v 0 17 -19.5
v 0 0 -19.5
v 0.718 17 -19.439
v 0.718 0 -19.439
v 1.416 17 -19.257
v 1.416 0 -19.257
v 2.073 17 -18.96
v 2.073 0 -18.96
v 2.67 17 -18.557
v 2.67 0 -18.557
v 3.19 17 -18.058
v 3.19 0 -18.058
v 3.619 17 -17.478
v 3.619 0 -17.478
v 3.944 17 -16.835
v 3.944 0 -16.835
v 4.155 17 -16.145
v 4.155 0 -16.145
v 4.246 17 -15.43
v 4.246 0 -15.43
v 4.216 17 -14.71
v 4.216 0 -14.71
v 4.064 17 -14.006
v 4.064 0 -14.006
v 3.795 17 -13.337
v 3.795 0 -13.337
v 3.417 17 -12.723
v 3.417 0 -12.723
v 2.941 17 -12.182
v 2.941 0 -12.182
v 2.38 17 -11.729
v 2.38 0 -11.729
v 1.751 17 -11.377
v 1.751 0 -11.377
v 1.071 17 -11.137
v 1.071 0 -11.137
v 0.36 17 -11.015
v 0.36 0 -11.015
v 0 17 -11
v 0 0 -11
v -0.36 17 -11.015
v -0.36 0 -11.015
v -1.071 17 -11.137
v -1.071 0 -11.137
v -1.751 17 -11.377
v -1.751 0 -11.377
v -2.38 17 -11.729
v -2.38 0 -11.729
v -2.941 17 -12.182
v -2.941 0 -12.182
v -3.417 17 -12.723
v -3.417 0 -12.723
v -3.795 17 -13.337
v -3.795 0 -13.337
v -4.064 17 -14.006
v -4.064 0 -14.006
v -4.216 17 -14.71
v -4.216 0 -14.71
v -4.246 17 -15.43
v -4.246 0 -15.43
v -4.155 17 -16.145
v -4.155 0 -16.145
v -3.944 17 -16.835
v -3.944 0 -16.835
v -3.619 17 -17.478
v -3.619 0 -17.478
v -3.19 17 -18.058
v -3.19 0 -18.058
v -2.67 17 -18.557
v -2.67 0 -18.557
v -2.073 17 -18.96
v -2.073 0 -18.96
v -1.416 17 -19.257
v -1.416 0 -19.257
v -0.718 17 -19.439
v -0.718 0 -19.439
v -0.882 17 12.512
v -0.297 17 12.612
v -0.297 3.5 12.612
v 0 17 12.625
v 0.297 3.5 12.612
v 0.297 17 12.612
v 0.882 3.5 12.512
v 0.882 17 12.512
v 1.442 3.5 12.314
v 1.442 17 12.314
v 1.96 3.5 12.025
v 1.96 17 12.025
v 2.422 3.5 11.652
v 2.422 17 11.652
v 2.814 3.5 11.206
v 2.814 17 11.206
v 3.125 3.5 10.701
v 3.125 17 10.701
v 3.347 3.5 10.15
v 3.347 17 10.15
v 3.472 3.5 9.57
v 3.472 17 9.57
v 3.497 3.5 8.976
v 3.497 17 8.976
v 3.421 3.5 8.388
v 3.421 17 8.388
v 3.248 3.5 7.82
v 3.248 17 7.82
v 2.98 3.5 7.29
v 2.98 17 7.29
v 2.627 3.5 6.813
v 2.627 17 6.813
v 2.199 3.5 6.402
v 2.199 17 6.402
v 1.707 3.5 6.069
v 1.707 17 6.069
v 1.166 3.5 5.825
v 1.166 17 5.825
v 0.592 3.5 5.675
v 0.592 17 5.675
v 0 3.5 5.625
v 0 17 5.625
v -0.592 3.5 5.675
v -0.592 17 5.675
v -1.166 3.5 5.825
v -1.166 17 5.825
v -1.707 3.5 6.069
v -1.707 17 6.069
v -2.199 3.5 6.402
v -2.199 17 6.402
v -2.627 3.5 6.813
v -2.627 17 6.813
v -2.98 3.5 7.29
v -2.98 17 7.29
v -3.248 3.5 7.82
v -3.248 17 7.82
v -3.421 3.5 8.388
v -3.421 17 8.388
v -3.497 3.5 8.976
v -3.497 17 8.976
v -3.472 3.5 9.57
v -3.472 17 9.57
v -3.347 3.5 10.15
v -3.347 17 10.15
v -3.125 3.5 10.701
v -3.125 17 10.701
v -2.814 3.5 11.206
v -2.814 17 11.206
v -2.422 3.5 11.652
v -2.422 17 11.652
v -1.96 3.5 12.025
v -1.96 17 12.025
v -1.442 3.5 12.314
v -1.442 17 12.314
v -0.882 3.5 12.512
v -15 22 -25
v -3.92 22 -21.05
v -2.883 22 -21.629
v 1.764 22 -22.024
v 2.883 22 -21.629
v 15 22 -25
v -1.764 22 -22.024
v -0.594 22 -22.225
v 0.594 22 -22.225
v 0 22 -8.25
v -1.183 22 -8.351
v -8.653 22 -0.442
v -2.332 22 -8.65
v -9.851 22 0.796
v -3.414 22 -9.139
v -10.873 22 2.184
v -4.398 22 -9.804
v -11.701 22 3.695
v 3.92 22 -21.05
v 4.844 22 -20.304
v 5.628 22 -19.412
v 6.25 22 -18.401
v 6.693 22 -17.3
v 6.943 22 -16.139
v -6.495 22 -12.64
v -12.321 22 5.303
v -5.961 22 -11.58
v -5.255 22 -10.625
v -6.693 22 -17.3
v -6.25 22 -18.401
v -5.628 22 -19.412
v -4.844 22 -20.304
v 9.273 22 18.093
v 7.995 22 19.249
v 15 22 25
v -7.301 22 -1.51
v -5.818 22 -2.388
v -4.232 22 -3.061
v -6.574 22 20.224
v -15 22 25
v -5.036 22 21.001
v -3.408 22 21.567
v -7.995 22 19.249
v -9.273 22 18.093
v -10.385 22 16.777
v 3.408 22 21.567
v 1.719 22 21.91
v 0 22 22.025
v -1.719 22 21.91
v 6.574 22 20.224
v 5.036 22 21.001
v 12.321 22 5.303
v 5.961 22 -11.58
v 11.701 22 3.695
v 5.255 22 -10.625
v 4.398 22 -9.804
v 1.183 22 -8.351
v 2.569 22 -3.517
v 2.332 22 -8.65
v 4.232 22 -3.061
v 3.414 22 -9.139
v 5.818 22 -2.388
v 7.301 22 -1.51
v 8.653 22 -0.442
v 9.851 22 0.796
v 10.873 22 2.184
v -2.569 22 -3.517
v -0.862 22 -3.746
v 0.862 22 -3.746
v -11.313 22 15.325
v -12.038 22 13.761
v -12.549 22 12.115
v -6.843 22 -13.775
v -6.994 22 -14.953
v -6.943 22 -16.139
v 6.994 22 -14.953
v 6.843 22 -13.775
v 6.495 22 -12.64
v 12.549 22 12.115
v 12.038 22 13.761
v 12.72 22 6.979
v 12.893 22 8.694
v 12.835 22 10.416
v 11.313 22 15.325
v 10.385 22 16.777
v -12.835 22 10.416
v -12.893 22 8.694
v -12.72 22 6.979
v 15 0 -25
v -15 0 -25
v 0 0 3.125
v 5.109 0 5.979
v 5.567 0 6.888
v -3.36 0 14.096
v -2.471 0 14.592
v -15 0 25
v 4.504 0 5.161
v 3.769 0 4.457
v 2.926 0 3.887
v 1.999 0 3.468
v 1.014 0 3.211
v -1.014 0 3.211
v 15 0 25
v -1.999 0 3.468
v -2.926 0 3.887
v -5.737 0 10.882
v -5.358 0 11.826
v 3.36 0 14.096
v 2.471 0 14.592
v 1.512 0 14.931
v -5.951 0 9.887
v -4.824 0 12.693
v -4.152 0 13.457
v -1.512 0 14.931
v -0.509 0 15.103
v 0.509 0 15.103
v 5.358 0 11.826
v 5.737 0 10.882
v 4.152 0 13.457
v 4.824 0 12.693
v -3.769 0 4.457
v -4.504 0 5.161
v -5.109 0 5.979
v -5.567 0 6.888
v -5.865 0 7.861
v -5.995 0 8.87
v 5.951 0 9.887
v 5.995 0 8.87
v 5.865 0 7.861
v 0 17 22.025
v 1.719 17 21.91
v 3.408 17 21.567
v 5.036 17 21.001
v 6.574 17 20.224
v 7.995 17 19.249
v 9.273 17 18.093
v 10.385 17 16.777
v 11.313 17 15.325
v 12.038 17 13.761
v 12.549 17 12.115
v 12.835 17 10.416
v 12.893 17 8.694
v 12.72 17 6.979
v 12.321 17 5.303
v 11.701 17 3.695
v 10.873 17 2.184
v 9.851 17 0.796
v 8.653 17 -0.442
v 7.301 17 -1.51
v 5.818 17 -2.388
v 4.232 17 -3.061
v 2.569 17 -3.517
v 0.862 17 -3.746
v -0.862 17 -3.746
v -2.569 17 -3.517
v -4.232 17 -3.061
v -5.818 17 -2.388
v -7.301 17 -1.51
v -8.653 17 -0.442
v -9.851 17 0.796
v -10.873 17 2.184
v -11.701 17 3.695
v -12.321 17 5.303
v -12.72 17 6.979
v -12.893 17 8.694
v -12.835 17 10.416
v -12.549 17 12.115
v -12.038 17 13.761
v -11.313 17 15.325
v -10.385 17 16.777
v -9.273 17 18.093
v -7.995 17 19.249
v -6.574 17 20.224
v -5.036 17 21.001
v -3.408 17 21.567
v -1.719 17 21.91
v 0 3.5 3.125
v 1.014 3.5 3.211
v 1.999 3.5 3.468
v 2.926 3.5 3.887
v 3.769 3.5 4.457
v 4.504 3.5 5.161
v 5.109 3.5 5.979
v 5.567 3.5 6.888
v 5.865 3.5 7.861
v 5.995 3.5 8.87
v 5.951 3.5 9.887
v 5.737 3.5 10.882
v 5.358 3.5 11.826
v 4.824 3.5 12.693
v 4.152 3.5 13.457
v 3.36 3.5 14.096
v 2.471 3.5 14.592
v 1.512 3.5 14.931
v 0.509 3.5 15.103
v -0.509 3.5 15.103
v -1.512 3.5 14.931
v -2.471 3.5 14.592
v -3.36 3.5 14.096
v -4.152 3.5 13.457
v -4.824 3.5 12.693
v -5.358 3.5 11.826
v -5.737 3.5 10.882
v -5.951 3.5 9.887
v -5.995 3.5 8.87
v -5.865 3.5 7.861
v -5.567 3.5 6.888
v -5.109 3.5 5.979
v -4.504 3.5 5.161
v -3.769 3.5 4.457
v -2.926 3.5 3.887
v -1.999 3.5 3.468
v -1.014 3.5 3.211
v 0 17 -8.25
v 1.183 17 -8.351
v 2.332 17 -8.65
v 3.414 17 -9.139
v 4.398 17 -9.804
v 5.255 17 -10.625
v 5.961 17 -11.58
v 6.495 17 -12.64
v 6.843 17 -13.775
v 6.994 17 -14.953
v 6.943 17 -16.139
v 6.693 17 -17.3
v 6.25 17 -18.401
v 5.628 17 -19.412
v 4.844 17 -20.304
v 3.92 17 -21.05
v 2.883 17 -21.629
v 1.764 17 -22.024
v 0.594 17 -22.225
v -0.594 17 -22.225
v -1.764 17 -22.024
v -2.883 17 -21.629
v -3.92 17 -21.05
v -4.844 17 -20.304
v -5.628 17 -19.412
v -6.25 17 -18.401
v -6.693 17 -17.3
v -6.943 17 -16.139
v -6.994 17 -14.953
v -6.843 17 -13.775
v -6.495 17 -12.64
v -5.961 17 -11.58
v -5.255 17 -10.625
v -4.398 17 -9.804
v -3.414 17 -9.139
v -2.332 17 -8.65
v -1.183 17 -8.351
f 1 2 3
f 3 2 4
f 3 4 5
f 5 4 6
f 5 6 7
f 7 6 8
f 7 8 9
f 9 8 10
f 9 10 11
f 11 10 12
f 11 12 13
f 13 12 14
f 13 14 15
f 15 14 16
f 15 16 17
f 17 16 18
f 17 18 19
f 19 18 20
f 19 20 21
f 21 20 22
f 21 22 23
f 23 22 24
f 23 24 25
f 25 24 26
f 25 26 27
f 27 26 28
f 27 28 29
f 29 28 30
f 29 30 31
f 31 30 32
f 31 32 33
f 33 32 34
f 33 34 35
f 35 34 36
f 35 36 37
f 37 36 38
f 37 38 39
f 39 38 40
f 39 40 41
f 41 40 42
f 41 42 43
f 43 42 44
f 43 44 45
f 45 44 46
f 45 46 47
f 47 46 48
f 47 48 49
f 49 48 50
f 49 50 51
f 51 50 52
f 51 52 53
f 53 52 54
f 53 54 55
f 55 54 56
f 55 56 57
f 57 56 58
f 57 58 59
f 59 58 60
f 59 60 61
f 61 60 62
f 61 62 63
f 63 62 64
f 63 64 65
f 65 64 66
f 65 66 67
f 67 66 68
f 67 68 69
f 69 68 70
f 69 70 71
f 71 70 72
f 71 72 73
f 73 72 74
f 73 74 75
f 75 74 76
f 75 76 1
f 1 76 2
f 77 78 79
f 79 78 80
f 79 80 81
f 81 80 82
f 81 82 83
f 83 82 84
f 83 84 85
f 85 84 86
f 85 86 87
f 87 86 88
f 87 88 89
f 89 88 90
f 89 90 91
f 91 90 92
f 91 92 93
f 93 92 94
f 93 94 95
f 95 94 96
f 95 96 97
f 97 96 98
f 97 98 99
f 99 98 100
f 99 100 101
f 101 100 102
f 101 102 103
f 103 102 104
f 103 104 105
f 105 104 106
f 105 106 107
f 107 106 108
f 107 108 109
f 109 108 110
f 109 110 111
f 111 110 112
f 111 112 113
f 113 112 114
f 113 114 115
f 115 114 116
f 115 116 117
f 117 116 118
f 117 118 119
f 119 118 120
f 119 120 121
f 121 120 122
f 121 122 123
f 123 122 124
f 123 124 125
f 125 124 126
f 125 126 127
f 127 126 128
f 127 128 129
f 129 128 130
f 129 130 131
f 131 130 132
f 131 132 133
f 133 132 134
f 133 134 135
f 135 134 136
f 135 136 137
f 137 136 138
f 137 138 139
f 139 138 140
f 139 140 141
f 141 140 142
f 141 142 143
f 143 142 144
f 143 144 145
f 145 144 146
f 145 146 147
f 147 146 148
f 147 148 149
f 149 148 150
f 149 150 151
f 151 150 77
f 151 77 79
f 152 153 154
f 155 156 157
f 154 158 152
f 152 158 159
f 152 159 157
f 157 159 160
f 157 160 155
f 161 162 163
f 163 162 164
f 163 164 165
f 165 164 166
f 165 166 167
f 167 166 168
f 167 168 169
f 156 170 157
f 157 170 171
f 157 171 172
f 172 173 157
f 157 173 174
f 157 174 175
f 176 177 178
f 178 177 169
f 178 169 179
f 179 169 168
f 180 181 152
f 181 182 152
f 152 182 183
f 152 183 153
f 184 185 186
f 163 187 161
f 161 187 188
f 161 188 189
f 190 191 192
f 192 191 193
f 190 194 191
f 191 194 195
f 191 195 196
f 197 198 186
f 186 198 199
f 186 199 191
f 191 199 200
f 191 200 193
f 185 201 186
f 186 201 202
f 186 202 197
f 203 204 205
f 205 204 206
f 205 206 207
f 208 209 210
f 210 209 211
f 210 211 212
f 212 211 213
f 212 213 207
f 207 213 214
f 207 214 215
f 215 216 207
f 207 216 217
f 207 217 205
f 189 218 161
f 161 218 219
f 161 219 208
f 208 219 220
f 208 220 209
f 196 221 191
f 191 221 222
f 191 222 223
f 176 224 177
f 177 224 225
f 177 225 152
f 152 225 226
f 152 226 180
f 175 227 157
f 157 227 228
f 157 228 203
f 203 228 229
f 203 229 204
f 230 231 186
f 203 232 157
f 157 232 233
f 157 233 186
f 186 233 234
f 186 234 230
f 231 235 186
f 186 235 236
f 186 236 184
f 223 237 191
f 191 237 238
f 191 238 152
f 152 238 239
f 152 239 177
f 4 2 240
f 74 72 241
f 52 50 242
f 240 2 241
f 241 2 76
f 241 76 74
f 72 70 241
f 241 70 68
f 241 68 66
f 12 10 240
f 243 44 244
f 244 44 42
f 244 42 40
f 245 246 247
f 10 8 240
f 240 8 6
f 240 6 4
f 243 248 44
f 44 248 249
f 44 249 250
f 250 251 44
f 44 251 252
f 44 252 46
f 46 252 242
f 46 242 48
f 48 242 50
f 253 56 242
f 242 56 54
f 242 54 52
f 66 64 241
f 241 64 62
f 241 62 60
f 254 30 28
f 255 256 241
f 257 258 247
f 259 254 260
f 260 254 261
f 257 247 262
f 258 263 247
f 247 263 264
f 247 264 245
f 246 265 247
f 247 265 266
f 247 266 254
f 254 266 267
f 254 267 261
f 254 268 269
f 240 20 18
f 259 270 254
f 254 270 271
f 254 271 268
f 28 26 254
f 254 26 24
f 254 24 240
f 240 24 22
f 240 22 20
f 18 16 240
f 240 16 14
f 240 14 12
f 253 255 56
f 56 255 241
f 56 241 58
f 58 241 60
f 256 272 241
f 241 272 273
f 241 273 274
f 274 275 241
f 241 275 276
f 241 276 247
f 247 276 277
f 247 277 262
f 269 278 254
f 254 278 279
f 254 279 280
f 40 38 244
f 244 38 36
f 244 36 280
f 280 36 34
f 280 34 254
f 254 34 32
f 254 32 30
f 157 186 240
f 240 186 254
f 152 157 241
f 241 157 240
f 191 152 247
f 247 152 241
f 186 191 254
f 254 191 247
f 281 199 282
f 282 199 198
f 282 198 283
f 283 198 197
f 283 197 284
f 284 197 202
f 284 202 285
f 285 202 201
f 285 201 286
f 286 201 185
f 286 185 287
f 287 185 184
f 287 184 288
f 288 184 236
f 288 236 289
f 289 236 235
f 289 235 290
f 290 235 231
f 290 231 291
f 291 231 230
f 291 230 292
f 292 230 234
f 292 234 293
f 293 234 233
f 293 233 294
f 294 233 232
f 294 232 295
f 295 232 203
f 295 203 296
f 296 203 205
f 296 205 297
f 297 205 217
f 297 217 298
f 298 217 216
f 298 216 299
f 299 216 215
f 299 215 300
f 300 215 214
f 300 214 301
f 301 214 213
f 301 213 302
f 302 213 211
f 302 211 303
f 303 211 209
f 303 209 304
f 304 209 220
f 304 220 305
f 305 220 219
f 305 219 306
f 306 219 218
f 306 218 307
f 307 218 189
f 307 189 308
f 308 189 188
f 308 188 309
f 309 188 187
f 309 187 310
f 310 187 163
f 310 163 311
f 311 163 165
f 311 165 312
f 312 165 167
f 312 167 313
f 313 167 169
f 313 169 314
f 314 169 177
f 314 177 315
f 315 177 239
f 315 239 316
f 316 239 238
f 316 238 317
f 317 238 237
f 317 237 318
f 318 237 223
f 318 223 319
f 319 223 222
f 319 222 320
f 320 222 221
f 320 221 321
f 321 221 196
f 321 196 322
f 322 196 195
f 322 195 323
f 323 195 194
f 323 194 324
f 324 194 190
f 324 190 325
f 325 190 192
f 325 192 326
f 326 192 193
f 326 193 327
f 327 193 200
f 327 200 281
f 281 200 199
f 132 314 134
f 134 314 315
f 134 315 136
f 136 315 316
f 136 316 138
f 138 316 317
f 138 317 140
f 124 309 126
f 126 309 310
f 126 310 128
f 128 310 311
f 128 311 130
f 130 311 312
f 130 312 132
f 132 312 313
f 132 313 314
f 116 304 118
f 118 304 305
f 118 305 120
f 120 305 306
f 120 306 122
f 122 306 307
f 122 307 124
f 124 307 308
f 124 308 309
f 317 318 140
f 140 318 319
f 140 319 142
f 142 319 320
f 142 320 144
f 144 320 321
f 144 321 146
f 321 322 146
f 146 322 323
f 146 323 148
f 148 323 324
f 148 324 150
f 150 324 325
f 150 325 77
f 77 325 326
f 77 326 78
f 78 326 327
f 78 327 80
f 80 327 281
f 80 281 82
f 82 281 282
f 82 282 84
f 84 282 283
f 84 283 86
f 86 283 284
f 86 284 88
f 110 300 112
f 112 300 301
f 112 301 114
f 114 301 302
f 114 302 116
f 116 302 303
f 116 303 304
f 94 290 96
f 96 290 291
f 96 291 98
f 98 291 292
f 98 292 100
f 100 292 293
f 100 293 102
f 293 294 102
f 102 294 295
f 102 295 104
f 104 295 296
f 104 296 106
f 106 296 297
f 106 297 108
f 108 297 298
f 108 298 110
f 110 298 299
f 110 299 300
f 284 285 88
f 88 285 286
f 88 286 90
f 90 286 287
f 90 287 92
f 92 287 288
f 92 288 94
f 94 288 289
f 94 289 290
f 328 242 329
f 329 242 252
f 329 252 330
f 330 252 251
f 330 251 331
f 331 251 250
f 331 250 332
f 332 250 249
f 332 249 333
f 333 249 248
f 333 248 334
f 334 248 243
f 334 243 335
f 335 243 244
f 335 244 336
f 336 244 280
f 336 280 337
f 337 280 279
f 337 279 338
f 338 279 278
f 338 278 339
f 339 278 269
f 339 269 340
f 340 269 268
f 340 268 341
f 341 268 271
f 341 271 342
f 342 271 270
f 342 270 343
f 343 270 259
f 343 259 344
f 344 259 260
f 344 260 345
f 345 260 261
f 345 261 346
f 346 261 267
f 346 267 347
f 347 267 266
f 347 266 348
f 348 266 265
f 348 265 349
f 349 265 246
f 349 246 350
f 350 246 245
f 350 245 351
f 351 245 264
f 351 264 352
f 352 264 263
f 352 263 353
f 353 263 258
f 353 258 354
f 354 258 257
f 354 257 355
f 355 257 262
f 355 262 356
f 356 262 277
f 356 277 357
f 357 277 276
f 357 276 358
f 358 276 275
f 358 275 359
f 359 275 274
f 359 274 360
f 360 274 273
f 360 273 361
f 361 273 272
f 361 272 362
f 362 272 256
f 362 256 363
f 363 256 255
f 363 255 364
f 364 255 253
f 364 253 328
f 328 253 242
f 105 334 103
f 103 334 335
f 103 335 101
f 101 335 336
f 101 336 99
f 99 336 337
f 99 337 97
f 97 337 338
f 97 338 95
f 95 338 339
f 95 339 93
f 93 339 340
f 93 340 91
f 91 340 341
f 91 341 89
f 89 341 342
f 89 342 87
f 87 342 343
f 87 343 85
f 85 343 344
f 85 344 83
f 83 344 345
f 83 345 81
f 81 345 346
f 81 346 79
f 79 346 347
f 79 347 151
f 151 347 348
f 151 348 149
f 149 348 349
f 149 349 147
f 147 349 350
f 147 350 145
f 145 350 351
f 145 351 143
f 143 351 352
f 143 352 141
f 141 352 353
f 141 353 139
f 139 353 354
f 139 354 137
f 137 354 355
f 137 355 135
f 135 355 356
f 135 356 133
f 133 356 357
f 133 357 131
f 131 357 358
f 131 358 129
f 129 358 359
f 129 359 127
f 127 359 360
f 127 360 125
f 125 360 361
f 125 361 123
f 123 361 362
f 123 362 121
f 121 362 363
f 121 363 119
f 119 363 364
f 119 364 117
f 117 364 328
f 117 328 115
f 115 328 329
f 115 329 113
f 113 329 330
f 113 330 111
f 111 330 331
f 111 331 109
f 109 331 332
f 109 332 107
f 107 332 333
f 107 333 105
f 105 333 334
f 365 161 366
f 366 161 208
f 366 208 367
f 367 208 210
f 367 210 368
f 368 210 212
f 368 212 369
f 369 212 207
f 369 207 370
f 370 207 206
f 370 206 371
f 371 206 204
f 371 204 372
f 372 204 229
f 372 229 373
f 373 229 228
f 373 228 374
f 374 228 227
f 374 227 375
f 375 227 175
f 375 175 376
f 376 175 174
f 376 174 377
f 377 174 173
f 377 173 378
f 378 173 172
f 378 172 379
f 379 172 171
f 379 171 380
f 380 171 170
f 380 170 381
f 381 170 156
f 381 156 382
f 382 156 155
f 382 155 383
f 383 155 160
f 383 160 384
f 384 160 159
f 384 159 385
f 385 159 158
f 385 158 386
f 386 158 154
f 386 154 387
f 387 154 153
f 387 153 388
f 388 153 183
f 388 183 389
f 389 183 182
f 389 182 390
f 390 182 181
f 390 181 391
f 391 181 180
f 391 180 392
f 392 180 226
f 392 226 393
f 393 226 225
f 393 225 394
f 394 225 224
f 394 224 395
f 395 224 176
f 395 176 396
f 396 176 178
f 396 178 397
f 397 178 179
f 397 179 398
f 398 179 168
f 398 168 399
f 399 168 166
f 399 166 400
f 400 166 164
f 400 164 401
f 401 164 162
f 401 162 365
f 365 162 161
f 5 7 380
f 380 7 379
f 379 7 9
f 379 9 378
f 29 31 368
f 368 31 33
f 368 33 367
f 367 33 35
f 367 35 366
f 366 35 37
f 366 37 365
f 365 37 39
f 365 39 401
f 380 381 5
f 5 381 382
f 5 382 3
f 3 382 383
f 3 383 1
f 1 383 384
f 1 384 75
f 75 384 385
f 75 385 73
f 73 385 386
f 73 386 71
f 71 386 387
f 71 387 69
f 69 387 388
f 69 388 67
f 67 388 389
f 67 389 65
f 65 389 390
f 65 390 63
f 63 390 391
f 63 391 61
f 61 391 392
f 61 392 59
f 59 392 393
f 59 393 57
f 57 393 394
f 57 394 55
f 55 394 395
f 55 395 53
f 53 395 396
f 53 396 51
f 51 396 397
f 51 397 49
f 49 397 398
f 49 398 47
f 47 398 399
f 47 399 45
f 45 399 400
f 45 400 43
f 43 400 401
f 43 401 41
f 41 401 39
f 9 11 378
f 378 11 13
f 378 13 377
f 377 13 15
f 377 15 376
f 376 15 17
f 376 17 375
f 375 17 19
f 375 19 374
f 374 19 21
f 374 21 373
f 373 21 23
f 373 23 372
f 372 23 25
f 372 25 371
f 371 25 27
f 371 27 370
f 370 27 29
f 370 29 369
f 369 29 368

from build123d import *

# Parameters (mm, degrees)
SKETCH_1_W          = 30
SKETCH_1_H          = 50
SKETCH_1_R          = 3.5
SKETCH_1_R_2        = 4.25
EXTRUDE_1_DEPTH     = 22
SKETCH_2_R          = 12.9
CUT_EXTRUDE_1_DEPTH = 5
SKETCH_3_R          = 6
CUT_EXTRUDE_2_DEPTH = 3.5
SKETCH_4_R          = 7
CUT_EXTRUDE_3_DEPTH = 5


with BuildPart() as part:
    # 草图1 → 凸台-拉伸1 (new body)
    with BuildSketch(Plane(origin=(0, 0, 0), x_dir=(1, 0, 0), z_dir=(0, 1, 0))):
        Rectangle(SKETCH_1_W, SKETCH_1_H)
        with Locations((0, -9.125)):
            Circle(SKETCH_1_R, mode=Mode.SUBTRACT)
        with Locations((0, 15.25)):
            Circle(SKETCH_1_R_2, mode=Mode.SUBTRACT)
    extrude(amount=EXTRUDE_1_DEPTH)

    # 草图2 → 切除-拉伸1 (cut)
    with BuildSketch(Plane(origin=(0, 22, 0), x_dir=(1, 0, 0), z_dir=(0, 1, 0))):
        with Locations((0, -9.125)):
            Circle(SKETCH_2_R)
    extrude(amount=-CUT_EXTRUDE_1_DEPTH, mode=Mode.SUBTRACT)

    # 草图3 → 切除-拉伸2 (cut)
    with BuildSketch(Plane.XZ):
        with Locations((0, 9.125)):
            Circle(SKETCH_3_R)
    extrude(amount=-CUT_EXTRUDE_2_DEPTH, mode=Mode.SUBTRACT)

    # 草图4 → 切除-拉伸3 (cut)
    with BuildSketch(Plane(origin=(0, 22, 0), x_dir=(1, 0, 0), z_dir=(0, 1, 0))):
        with Locations((0, 15.25)):
            Circle(SKETCH_4_R)
    extrude(amount=-CUT_EXTRUDE_3_DEPTH, mode=Mode.SUBTRACT)


solid = part.part
